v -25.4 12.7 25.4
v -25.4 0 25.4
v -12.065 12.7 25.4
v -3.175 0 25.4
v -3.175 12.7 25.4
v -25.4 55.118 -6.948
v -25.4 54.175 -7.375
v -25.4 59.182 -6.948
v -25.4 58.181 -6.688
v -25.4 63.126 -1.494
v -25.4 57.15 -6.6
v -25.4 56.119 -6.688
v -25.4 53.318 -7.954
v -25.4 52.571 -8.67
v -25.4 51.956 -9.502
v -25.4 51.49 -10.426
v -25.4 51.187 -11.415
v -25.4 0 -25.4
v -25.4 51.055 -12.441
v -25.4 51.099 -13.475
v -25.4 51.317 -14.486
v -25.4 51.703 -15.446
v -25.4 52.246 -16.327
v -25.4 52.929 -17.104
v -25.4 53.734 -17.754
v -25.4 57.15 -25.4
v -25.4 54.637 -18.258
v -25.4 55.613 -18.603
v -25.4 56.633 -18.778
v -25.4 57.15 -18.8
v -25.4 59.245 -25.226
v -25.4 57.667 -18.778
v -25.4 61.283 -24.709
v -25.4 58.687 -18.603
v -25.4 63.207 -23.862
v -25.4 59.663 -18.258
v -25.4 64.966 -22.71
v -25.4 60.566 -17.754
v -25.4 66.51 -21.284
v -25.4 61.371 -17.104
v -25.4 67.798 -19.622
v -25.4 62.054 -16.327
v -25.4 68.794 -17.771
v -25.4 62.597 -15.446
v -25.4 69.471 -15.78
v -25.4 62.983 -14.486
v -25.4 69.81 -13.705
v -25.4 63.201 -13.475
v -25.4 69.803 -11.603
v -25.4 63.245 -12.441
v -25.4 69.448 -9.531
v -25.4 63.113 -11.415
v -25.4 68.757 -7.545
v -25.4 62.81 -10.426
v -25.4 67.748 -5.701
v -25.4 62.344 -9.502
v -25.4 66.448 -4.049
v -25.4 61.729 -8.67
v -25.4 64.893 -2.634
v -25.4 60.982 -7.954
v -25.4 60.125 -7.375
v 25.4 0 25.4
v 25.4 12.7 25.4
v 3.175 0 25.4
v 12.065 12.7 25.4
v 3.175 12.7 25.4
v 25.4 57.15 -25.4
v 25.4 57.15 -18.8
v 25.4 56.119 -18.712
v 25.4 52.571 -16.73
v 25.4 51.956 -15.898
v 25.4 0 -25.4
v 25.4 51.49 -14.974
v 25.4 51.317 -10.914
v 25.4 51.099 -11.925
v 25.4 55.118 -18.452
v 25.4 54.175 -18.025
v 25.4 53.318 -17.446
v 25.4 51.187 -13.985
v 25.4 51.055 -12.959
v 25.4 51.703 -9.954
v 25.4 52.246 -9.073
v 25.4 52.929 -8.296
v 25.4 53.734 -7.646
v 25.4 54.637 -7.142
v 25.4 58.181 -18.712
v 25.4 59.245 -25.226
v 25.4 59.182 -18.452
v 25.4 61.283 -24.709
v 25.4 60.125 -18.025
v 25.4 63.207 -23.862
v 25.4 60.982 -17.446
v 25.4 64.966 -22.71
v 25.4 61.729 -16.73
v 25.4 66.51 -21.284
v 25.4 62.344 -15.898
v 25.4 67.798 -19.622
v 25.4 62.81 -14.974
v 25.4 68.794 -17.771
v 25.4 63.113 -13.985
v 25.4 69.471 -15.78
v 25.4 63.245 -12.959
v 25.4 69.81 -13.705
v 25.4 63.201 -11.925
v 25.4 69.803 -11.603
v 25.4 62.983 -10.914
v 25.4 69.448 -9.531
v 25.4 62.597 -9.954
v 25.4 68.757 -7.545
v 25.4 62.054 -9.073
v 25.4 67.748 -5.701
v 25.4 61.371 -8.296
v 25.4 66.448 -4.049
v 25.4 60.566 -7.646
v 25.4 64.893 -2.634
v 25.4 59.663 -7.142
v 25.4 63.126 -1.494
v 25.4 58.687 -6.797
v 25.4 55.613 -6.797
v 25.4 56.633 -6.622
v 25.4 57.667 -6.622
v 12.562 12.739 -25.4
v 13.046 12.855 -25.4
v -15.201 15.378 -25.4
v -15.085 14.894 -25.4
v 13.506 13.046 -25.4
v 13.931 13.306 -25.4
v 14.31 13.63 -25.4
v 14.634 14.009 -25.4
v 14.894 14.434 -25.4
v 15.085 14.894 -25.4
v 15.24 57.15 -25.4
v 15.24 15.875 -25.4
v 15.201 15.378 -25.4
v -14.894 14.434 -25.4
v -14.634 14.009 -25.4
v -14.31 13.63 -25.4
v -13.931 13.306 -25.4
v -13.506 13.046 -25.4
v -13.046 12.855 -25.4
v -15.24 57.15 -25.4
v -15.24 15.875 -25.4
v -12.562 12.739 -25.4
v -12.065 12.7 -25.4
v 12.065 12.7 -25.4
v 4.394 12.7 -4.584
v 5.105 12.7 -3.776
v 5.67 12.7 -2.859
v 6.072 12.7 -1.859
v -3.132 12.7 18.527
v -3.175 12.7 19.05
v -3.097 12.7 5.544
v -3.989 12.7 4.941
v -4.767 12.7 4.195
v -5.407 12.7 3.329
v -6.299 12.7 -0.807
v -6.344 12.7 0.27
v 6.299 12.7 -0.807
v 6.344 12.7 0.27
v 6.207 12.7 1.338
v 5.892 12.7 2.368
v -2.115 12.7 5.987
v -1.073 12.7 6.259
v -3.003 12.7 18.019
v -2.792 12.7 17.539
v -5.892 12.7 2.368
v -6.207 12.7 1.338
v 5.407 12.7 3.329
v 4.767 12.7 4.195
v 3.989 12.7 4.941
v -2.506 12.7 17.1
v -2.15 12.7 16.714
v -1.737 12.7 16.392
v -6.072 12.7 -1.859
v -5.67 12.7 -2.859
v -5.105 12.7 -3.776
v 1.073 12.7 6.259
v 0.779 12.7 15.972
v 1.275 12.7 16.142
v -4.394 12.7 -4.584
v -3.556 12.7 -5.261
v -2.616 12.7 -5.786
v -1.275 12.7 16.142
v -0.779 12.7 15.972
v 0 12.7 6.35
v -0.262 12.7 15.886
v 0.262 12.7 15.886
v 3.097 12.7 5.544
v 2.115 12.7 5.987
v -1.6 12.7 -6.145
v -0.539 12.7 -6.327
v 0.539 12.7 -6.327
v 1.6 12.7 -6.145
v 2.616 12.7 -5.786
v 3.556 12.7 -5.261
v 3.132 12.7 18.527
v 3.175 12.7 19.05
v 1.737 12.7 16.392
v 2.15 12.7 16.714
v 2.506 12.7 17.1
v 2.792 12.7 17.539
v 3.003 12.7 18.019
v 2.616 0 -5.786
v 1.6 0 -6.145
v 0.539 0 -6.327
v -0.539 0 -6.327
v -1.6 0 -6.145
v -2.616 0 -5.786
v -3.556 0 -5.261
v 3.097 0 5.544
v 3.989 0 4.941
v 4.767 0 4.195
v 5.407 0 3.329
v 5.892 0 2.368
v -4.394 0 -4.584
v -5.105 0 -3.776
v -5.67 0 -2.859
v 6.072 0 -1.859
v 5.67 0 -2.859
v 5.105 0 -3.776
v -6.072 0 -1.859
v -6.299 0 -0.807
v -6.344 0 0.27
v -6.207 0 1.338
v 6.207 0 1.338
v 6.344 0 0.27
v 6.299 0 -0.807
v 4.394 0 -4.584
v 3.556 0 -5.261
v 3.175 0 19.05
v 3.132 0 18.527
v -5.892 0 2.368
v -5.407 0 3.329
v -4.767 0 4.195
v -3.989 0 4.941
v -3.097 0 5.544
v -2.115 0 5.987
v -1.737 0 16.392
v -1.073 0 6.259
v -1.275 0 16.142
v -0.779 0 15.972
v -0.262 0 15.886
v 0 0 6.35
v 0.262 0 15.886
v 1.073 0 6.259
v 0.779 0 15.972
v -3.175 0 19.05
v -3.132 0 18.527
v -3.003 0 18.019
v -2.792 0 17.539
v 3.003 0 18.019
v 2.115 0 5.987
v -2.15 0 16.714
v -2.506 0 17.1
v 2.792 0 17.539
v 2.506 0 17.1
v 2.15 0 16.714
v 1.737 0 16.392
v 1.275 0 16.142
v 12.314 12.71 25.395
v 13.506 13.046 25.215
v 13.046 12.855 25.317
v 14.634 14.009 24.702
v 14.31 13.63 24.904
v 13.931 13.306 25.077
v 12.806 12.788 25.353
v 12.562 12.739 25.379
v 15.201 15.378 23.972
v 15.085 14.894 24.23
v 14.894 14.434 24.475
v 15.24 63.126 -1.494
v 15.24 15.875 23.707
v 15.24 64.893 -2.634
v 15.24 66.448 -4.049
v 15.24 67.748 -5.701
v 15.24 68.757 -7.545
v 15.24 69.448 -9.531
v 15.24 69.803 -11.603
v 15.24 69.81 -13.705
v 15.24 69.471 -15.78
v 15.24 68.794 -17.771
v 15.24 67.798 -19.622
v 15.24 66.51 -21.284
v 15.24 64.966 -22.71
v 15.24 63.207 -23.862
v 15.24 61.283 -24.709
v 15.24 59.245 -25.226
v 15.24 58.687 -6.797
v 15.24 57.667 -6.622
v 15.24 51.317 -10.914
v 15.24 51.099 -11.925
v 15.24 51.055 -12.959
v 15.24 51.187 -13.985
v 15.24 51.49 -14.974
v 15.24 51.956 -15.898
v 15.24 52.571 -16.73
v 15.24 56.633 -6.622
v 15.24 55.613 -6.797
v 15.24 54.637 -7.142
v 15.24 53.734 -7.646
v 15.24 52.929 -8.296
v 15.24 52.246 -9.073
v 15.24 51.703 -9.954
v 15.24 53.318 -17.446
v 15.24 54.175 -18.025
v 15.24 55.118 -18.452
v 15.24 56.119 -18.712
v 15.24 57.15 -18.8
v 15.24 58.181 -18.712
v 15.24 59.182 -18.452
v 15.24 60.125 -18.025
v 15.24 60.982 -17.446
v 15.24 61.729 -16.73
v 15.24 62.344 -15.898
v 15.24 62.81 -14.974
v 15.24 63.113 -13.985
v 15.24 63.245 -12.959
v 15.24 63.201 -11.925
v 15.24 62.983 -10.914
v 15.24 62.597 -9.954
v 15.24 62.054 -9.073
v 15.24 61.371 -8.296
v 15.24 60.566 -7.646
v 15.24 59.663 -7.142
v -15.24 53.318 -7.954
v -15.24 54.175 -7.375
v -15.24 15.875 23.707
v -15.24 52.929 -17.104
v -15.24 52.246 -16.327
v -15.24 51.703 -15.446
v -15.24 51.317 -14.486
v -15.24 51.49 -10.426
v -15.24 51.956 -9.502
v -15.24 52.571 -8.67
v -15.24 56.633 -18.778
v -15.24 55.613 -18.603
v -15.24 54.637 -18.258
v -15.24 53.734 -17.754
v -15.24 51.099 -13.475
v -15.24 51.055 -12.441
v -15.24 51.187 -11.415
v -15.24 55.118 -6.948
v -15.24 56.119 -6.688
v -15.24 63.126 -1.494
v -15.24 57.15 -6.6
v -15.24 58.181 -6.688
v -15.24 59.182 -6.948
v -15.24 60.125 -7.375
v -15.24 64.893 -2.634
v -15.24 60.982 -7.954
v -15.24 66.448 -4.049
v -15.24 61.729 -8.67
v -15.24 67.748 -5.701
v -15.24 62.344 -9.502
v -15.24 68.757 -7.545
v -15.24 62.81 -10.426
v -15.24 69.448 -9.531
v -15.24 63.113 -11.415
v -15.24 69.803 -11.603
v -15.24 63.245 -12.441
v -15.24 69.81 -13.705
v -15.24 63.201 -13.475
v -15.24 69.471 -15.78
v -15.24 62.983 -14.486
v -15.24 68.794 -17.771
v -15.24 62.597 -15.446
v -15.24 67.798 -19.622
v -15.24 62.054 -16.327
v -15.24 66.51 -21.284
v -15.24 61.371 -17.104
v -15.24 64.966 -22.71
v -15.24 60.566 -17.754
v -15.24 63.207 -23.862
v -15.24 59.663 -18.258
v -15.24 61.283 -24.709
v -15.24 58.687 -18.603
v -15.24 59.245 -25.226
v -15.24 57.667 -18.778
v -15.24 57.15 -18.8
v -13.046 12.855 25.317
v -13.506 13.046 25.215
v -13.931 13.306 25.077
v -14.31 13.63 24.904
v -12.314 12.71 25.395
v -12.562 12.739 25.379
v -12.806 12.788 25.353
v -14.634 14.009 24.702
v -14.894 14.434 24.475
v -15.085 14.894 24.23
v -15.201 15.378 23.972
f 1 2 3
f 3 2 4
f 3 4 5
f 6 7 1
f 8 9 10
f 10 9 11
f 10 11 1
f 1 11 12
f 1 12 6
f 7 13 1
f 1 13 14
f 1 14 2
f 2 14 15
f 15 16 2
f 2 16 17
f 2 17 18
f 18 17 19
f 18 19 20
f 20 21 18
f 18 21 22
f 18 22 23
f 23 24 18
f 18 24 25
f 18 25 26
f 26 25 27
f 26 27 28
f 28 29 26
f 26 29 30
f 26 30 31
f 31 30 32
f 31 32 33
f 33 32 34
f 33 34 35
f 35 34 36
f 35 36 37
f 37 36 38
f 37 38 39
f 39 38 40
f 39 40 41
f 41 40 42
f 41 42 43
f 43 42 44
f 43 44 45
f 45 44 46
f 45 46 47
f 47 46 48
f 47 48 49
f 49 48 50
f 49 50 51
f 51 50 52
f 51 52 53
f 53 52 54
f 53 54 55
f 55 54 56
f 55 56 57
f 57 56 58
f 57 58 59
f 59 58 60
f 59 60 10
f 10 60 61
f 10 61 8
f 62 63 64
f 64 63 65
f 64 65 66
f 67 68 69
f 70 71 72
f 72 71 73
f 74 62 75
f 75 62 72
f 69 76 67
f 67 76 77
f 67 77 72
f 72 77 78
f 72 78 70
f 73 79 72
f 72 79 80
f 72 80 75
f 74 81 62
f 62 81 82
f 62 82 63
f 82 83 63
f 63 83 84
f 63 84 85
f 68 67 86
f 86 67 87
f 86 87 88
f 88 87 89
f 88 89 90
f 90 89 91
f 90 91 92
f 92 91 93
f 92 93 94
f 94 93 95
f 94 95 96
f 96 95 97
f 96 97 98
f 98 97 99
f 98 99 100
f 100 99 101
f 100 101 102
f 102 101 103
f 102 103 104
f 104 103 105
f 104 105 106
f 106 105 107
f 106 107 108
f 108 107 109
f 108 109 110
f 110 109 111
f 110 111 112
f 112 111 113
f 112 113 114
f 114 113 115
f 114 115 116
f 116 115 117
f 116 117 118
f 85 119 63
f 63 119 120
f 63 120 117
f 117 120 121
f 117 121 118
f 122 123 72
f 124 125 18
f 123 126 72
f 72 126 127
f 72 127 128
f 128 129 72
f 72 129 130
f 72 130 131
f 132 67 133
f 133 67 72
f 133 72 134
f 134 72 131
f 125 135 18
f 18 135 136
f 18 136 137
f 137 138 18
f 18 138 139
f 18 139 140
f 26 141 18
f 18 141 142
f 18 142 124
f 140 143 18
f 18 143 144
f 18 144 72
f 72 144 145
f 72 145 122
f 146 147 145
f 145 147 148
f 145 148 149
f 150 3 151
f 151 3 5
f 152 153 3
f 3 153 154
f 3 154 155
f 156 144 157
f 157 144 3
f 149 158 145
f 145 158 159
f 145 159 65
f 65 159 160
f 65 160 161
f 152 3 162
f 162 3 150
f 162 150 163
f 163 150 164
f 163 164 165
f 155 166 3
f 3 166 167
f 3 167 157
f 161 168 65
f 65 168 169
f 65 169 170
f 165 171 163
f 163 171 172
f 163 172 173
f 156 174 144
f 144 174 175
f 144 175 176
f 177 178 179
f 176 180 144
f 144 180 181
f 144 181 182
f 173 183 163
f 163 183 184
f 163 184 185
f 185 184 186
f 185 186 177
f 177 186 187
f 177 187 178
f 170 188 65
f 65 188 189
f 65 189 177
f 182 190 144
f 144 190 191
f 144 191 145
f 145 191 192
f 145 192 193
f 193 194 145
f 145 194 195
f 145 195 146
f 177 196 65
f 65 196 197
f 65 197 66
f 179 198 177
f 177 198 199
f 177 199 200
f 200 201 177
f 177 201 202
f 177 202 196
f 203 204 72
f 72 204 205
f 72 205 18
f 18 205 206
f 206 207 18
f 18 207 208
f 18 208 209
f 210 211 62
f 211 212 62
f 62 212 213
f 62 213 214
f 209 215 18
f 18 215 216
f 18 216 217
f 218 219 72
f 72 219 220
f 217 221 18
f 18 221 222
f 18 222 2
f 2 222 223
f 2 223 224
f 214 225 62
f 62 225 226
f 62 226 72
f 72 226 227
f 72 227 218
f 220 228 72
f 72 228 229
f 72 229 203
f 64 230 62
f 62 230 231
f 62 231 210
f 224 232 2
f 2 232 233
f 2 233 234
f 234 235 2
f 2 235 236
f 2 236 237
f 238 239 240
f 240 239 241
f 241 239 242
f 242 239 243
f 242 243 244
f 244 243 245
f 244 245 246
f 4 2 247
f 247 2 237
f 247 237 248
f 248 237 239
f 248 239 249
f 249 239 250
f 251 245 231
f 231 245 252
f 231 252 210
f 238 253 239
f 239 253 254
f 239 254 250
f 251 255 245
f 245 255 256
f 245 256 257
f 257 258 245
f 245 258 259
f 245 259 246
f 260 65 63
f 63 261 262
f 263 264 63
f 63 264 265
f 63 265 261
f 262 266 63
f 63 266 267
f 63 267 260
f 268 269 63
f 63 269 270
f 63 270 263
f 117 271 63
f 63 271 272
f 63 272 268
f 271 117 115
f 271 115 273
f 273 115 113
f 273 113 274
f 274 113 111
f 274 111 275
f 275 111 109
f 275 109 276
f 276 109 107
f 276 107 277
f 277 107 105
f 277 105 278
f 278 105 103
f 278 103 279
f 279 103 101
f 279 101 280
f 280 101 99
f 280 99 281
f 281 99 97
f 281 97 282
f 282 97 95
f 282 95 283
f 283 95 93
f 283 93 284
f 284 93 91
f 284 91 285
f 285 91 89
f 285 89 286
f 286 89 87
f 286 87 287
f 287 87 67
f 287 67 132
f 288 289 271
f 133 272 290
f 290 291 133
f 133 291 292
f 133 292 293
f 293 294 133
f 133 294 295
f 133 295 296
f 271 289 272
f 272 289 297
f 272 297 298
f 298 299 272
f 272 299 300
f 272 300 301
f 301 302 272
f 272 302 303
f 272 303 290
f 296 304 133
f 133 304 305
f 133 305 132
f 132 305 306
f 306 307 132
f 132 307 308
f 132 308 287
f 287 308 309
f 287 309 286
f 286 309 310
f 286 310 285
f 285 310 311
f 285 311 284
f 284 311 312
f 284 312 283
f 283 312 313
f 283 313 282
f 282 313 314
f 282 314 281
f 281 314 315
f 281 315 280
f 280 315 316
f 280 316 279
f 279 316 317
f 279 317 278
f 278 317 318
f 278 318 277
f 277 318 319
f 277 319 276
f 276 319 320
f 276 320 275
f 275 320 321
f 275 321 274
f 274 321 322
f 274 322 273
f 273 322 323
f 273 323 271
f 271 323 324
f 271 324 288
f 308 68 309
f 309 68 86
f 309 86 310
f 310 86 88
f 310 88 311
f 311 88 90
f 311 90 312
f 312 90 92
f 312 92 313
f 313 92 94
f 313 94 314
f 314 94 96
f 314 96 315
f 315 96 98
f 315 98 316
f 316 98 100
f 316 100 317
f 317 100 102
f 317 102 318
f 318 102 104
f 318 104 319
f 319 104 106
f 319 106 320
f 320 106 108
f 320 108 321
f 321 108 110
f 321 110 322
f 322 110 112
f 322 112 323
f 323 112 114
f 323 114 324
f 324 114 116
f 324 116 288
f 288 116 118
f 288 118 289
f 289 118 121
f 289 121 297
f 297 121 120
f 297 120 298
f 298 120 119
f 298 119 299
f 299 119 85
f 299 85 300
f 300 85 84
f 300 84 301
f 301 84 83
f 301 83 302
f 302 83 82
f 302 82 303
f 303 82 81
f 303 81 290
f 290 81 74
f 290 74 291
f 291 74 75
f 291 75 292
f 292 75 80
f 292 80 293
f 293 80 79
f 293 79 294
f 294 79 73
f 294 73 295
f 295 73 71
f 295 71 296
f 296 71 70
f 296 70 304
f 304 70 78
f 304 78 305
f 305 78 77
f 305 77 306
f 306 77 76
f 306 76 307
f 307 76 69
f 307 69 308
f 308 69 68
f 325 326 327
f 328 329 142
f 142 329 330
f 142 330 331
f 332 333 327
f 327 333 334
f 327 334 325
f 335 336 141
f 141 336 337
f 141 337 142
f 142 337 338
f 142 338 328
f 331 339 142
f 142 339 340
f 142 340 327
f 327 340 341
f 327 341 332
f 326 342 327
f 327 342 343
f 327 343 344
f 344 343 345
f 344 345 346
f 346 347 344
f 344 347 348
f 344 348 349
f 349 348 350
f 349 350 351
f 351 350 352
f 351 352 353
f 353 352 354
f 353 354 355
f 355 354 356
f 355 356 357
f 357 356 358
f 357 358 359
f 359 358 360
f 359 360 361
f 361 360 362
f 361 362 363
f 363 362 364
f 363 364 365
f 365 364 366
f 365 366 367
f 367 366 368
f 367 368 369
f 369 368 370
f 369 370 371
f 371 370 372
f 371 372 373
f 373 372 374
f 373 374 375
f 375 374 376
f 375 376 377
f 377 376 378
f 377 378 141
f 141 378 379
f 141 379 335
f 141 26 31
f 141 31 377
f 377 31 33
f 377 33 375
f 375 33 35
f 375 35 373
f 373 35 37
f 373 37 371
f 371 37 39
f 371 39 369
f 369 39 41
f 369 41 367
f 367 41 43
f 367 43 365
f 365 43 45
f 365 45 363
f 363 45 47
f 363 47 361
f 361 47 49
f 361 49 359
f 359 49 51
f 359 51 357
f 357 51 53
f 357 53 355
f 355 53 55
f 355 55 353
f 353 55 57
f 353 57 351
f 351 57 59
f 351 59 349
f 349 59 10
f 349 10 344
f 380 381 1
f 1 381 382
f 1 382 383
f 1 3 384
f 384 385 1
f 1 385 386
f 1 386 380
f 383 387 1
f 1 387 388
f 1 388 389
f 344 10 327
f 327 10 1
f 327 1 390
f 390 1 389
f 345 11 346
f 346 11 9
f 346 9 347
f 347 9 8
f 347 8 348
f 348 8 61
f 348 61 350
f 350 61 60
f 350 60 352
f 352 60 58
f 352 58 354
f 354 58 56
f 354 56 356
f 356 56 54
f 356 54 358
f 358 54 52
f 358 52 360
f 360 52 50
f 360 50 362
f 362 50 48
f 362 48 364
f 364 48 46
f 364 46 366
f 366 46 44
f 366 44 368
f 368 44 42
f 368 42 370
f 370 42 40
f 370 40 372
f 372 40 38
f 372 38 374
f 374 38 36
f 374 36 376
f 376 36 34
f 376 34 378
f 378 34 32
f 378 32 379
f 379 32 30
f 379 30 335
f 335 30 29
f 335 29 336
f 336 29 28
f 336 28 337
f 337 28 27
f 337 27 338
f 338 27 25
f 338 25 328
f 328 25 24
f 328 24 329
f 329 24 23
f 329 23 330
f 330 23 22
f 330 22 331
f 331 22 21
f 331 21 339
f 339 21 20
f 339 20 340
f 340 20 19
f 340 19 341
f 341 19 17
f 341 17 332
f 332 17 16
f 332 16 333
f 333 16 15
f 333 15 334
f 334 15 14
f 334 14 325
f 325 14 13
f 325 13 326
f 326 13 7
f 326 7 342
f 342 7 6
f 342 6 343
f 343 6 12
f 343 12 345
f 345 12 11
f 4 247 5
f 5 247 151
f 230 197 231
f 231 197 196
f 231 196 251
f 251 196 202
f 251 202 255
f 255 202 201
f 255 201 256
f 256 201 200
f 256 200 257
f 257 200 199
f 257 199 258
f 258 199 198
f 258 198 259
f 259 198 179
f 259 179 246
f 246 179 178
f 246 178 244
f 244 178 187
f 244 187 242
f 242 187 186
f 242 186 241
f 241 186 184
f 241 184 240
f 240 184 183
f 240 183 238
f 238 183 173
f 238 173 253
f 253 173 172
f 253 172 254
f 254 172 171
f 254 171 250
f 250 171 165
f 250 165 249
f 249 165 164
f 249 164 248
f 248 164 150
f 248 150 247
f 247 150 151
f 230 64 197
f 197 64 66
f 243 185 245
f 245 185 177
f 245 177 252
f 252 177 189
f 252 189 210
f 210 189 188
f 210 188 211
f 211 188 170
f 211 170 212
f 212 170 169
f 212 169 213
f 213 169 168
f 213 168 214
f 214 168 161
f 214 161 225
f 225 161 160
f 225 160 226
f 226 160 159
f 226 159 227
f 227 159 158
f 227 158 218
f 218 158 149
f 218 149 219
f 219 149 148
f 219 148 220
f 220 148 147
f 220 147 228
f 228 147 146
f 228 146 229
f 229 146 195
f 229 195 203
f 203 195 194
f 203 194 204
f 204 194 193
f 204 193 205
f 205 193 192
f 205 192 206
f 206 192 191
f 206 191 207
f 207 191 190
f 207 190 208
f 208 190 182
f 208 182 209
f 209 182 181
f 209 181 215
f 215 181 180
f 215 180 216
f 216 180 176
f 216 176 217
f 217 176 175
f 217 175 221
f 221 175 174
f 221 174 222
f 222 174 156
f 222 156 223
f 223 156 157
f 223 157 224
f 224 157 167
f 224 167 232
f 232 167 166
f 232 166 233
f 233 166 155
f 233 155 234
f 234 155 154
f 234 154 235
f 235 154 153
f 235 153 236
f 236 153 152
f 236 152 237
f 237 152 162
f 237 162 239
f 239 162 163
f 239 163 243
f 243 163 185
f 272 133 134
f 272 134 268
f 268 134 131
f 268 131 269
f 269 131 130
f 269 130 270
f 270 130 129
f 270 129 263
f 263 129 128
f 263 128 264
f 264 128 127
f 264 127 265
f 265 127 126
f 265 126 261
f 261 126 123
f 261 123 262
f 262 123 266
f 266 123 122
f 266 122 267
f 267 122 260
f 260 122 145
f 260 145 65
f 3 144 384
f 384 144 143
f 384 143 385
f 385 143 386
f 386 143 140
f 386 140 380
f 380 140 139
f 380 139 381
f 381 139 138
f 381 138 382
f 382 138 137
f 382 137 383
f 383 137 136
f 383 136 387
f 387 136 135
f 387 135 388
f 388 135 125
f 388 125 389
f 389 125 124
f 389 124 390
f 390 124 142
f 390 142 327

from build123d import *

# Parameters (mm, degrees)
SKETCH1_W           = 50.8
SKETCH1_H           = 50.8
BOSS_EXTRUDE1_DEPTH = 12.7
SKETCH2_R           = 6.1
BOSS_EXTRUDE2_DEPTH = 10.16
SKETCH3_R           = 6.35
CUT_EXTRUDE1_DEPTH  = 68.501425911
FILLET1_R           = 3.175


with BuildPart() as part:
    # Sketch1 → Boss-Extrude1 (new body)
    with BuildSketch(Plane(origin=(0, 0, 0), x_dir=(1, 0, 0), z_dir=(0, 1, 0))):
        Rectangle(SKETCH1_W, SKETCH1_H)
    extrude(amount=BOSS_EXTRUDE1_DEPTH)

    # Sketch2 → Boss-Extrude2 (add)
    with BuildSketch(Plane(origin=(25.4, 0, 0), x_dir=(0, 0, -1), z_dir=(1, 0, 0))):
        with BuildLine():
            Line((-25.4, 0), (-25.4, 12.7))
            Line((-25.4, 12.7), (1.494117647, 63.126470588))
            ThreePointArc((1.494117647, 63.126470588), (15.780202438, 69.470809752), (25.4, 57.15))
            Line((25.4, 57.15), (25.4, 0))
            Line((25.4, 0), (-25.4, 0))
        make_face()
        with Locations((12.7, 57.15)):
            Circle(SKETCH2_R, mode=Mode.SUBTRACT)
    boss_extrude2 = extrude(amount=-BOSS_EXTRUDE2_DEPTH)

    # Mirror1: Boss-Extrude2 across plane
    add(boss_extrude2.mirror(Plane(origin=(0, 0, 0), x_dir=(0, 0, 1), z_dir=(1, 0, 0))))

    # Sketch3 → Cut-Extrude1 (cut, through all)
    with BuildSketch(Plane(origin=(0, 12.7, 0), x_dir=(1, 0, 0), z_dir=(0, 1, 0))):
        with Locations(Location((0, 0, 0), (0, 0, 270))):
            Circle(SKETCH3_R)
        with BuildLine():
            Line((-3.175, -25.4), (-3.175, -19.05))
            ThreePointArc((-3.175, -19.05), (0, -15.875), (3.175, -19.05))
            Line((3.175, -19.05), (3.175, -25.4))
            Line((3.175, -25.4), (-3.175, -25.4))
        make_face()
    extrude(amount=-CUT_EXTRUDE1_DEPTH, mode=Mode.SUBTRACT)

    # Fillet1
    fillet1_edges = [part.edges().sort_by_distance(p)[0] for p in [
        (15.24, 12.7, 0),
        (-15.24, 12.7, 0),
    ]]
    fillet(fillet1_edges, radius=FILLET1_R)


solid = part.part
